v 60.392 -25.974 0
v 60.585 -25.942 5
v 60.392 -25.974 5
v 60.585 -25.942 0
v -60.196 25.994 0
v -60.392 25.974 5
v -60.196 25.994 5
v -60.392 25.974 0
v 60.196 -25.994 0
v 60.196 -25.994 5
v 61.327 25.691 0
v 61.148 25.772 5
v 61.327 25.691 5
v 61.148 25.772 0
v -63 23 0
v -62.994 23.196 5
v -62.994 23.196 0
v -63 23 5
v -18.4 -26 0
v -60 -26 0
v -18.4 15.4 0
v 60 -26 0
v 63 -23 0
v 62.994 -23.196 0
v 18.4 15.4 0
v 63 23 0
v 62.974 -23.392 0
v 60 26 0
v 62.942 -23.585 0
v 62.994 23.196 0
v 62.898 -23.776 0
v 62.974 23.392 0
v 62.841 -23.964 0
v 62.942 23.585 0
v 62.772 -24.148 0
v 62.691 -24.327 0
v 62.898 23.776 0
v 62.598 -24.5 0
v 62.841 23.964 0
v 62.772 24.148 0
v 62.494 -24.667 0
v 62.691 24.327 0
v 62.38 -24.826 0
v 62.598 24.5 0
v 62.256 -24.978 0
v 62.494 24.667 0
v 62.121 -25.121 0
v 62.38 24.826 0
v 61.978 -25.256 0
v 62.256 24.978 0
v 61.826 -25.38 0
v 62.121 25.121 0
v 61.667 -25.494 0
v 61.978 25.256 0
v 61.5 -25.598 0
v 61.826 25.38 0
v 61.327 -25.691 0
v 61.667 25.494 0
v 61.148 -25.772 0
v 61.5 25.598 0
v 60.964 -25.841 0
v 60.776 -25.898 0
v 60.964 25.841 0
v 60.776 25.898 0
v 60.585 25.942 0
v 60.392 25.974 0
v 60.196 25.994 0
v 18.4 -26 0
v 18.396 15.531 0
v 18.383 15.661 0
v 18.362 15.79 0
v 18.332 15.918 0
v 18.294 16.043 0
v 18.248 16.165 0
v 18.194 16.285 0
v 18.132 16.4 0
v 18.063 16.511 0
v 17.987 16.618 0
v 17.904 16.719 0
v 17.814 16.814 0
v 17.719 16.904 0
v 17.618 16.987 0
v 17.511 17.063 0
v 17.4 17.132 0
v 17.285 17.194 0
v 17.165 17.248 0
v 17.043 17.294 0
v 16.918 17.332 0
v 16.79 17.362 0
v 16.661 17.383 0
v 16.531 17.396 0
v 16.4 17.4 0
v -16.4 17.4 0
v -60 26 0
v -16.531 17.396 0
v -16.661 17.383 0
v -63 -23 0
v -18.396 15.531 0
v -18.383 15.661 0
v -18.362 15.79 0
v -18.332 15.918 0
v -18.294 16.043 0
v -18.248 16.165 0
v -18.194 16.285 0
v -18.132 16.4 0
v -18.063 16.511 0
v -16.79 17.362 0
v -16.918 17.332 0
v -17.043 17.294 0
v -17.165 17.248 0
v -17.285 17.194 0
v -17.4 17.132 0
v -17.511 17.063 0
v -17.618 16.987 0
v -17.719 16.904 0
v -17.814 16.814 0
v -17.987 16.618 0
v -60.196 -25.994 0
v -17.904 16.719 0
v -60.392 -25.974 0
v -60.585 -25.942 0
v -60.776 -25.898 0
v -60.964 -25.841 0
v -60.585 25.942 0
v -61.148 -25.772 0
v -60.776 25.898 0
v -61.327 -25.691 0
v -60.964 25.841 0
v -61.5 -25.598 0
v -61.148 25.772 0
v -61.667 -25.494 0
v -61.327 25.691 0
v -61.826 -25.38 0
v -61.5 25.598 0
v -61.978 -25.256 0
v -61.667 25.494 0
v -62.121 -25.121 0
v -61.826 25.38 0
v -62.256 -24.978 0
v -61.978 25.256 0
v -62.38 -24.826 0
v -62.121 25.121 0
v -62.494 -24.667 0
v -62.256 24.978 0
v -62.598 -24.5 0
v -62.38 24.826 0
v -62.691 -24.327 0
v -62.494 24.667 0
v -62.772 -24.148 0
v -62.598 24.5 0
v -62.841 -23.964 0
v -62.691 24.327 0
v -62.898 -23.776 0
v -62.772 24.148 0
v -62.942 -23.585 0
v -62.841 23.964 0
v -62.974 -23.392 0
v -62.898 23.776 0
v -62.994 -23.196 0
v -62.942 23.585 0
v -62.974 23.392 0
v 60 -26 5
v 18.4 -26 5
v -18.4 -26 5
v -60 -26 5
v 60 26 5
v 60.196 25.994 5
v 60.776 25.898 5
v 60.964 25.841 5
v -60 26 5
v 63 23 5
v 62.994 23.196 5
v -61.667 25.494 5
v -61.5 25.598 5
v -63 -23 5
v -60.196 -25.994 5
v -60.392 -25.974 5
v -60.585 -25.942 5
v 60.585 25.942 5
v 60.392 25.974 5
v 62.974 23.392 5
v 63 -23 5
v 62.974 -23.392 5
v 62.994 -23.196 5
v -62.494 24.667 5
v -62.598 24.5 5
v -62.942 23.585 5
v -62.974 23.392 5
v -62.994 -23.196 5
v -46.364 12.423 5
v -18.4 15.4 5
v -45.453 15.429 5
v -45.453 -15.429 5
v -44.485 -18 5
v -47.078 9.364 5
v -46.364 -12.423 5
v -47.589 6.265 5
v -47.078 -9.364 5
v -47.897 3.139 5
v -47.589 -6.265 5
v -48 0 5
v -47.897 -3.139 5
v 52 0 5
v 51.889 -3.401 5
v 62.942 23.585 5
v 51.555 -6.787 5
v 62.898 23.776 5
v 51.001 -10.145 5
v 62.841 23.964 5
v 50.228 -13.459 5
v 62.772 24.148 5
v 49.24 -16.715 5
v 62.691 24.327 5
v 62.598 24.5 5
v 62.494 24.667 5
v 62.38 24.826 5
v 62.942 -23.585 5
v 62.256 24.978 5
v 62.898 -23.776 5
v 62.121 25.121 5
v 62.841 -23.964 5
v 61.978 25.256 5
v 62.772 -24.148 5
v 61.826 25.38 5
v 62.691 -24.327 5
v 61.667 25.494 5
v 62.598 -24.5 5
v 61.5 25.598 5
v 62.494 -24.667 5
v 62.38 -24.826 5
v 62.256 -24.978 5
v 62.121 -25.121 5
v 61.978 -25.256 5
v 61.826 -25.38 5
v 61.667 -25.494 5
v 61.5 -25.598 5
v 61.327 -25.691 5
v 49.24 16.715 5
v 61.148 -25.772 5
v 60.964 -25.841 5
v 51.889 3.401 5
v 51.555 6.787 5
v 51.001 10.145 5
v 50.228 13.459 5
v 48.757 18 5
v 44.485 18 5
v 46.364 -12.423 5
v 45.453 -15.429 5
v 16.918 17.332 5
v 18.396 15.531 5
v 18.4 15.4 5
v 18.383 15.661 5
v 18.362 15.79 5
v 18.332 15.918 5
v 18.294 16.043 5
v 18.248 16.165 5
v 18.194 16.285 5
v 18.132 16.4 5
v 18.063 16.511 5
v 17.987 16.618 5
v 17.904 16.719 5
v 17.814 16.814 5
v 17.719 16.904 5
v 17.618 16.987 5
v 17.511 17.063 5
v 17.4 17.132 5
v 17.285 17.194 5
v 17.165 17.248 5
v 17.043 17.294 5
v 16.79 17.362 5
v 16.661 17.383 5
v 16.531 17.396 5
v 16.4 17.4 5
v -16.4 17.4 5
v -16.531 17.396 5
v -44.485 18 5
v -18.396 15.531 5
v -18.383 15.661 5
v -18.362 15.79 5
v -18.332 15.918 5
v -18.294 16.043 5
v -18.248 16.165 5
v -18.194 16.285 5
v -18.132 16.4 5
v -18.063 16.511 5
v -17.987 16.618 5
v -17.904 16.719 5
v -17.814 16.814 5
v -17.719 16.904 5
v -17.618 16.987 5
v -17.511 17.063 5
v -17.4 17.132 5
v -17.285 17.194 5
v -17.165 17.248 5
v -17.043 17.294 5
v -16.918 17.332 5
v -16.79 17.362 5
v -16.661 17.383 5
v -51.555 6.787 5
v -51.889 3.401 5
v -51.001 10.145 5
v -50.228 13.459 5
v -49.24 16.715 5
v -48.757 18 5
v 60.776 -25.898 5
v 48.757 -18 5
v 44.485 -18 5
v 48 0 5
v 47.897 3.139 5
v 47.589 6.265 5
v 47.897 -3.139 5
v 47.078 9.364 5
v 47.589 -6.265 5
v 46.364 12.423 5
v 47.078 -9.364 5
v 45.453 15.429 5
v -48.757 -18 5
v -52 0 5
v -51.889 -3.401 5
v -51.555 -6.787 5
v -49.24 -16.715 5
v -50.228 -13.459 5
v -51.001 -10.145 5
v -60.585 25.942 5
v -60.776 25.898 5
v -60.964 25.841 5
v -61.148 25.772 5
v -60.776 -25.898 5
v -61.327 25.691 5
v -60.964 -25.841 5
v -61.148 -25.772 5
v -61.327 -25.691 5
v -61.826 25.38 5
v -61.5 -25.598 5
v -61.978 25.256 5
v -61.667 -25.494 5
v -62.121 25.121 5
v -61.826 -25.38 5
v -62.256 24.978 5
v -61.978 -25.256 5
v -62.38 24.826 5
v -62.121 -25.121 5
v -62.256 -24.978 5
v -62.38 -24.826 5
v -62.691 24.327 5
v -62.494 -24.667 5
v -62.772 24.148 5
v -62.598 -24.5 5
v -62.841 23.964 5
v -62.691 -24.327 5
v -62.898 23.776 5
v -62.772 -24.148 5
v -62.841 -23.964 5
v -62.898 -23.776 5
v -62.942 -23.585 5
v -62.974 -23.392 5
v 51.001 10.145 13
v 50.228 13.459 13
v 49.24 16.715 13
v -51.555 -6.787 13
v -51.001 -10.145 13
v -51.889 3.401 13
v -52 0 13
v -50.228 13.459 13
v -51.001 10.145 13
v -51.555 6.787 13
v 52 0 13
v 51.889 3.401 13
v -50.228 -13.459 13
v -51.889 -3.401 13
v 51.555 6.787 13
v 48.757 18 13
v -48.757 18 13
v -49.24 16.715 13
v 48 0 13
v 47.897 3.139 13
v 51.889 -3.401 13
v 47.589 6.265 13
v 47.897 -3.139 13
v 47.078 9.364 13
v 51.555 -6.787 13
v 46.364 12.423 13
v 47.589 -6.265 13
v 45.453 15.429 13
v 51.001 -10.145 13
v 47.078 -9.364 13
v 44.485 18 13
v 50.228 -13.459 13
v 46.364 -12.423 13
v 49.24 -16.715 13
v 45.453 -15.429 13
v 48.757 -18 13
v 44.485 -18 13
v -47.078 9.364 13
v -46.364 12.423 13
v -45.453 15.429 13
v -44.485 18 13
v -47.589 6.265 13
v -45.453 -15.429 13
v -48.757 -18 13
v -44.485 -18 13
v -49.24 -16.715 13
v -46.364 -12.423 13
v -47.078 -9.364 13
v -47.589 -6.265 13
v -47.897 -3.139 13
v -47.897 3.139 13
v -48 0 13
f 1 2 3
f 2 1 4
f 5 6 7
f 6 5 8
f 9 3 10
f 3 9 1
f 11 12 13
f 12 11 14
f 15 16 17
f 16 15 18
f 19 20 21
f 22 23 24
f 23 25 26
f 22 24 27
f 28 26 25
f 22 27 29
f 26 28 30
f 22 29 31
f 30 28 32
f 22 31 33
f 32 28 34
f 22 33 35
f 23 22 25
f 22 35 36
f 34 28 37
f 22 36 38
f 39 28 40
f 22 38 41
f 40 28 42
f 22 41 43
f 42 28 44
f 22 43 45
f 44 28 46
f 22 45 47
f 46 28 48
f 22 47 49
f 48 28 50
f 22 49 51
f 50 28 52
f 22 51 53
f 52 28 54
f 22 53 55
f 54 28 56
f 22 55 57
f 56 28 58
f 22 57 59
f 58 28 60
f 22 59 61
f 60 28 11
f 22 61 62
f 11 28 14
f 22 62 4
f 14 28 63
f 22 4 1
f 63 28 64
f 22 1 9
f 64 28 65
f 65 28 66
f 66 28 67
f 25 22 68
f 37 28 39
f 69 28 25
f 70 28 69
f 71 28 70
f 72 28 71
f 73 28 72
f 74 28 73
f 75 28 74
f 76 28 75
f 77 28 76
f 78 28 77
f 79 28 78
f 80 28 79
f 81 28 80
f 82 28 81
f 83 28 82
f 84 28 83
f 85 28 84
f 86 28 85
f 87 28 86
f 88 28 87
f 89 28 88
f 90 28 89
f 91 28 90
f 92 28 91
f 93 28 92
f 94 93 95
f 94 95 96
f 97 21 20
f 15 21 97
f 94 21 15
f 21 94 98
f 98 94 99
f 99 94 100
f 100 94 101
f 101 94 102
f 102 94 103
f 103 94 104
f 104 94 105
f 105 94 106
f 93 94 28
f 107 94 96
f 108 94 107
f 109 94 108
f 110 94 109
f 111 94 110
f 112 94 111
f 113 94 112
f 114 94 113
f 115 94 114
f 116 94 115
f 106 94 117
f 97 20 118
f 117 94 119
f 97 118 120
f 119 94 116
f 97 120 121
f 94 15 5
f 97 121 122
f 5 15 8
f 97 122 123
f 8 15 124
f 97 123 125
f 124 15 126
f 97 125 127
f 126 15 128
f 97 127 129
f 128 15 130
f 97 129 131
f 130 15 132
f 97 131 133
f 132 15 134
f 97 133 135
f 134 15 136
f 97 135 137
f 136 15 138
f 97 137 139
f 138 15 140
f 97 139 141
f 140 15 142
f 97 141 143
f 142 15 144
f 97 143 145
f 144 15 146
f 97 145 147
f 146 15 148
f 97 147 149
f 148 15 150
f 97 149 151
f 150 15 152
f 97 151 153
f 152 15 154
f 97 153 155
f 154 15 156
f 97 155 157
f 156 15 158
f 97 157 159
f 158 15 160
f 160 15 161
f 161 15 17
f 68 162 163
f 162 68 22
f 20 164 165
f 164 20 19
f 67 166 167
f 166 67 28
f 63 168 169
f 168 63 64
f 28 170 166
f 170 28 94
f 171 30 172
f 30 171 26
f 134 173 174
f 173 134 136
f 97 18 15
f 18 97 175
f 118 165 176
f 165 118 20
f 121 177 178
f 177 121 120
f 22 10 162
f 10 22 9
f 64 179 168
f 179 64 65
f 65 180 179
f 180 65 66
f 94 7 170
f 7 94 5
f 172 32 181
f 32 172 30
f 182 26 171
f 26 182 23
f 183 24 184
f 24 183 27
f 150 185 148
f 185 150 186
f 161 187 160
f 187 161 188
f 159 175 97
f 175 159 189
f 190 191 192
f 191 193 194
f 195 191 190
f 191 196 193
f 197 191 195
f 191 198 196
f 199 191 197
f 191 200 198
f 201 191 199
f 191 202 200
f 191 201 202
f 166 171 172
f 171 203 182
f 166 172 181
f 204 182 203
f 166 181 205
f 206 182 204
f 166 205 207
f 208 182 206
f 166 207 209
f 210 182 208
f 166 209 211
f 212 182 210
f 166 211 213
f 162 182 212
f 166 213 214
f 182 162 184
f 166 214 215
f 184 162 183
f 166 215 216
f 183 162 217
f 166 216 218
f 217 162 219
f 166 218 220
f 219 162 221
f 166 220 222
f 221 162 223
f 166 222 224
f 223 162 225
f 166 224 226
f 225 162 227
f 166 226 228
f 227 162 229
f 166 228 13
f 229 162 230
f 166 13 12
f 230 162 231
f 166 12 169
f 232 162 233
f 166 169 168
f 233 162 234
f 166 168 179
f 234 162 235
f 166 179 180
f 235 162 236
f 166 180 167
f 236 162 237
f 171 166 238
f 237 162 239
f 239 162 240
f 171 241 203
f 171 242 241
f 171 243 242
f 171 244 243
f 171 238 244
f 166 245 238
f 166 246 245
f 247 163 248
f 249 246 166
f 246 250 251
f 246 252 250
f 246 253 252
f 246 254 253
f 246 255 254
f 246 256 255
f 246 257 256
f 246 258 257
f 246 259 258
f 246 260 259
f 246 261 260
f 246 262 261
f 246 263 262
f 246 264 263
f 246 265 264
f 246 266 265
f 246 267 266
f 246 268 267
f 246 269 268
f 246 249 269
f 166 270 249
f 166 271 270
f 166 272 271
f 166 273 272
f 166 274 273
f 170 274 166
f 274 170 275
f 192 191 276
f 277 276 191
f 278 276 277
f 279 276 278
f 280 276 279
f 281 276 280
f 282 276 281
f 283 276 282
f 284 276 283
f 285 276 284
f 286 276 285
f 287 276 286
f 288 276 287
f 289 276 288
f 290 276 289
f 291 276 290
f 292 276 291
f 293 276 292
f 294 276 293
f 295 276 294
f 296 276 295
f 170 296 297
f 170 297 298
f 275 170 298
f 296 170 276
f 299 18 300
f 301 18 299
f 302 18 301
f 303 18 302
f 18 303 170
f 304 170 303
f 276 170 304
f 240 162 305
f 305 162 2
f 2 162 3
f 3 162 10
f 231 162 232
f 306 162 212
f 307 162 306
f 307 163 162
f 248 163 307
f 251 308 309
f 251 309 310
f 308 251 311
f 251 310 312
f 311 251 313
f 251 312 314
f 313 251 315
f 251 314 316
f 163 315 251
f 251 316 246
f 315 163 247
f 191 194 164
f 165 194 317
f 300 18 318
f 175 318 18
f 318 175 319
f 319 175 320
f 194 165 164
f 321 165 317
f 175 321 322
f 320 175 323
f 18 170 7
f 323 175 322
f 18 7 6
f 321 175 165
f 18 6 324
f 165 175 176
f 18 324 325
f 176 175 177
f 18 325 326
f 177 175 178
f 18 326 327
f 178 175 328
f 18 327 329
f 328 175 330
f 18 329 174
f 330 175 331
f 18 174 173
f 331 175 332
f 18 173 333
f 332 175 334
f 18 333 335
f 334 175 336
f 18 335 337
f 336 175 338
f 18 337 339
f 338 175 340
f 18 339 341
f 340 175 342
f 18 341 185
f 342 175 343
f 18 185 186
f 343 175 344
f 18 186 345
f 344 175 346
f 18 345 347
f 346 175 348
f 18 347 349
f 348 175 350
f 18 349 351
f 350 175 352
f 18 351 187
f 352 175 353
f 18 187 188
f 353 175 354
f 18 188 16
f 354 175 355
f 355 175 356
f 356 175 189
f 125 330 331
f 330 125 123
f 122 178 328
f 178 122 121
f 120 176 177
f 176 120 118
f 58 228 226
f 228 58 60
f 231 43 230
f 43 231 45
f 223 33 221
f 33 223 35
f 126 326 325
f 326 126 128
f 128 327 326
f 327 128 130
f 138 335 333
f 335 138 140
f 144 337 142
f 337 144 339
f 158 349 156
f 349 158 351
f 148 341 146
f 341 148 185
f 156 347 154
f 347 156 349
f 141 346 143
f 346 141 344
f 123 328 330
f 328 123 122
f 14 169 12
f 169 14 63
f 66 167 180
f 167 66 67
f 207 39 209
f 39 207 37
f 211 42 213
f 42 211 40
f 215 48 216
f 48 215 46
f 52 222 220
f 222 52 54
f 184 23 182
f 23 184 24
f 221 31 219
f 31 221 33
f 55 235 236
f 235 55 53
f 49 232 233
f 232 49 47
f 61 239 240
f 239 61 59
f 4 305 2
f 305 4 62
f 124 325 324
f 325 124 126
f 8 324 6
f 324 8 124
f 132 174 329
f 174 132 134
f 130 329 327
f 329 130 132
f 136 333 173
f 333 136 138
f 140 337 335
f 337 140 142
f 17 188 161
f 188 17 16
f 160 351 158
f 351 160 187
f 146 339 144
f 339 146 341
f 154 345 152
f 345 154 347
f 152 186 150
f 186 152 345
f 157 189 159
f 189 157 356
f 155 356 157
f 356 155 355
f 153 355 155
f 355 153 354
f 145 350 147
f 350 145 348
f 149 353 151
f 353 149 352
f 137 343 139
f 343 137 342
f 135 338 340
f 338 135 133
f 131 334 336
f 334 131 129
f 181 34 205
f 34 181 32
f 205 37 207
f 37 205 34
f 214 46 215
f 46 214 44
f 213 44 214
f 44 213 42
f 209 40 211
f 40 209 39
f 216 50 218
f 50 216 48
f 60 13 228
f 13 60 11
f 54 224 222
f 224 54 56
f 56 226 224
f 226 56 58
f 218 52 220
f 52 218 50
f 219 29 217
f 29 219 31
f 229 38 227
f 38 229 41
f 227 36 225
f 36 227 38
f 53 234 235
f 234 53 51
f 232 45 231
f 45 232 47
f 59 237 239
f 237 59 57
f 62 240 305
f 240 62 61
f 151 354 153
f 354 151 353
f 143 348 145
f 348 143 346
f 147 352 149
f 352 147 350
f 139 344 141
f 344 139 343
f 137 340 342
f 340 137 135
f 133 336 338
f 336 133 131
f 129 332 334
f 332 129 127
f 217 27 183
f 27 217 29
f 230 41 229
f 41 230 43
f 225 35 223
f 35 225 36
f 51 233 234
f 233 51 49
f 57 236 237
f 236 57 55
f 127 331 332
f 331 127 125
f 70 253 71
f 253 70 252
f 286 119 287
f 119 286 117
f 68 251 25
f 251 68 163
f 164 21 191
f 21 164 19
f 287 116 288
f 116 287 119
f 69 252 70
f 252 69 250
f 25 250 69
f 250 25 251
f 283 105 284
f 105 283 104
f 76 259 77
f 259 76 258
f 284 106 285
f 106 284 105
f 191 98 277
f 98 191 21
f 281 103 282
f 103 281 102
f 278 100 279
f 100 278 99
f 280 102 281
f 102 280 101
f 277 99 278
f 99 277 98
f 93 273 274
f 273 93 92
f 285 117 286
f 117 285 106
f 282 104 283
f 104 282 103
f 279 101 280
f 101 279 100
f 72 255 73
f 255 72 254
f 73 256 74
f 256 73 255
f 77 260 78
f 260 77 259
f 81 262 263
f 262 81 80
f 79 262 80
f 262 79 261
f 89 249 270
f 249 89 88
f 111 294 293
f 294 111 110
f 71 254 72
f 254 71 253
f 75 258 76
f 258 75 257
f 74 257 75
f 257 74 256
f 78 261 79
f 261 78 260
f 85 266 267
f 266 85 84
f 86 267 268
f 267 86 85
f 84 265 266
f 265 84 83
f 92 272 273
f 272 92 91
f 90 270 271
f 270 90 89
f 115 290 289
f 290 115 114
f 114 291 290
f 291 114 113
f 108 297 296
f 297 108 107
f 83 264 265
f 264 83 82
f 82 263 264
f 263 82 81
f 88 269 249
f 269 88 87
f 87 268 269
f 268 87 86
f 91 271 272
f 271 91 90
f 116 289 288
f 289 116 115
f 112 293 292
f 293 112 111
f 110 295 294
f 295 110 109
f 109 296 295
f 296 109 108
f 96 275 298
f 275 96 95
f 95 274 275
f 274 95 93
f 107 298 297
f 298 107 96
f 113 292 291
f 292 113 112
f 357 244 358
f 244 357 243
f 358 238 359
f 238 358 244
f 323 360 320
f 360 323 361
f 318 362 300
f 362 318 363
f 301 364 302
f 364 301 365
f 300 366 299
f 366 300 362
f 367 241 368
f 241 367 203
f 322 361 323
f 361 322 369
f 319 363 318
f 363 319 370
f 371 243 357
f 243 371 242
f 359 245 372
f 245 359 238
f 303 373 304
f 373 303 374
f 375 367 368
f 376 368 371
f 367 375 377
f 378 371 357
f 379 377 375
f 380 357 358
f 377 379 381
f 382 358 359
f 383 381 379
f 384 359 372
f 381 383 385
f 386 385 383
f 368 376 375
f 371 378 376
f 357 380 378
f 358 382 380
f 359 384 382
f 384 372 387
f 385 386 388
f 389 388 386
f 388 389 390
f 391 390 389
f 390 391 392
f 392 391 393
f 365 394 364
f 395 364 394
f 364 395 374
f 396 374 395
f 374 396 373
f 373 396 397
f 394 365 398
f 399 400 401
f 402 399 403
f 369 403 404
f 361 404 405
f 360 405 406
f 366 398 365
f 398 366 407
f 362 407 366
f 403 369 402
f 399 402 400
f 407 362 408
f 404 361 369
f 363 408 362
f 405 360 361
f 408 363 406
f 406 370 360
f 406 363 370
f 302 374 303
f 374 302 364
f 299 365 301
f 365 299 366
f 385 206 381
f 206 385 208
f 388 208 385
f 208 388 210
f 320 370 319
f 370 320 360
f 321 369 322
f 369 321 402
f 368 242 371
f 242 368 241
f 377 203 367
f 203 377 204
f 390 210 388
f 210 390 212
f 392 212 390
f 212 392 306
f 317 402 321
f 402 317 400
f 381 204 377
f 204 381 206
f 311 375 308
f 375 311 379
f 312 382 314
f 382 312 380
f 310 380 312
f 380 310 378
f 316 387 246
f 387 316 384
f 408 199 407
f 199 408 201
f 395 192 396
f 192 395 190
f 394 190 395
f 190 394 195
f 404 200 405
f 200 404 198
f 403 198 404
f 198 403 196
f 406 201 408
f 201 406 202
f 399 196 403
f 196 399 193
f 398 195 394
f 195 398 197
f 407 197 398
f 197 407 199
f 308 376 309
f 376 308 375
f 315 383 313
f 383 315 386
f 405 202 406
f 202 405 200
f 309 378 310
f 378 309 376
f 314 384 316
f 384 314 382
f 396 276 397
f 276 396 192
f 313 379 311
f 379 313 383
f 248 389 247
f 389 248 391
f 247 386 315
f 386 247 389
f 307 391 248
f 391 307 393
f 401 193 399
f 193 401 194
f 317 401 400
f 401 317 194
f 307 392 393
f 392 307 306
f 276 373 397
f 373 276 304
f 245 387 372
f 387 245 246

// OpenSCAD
// OBSOLETE FOR THE CURRENT 10 mm EXPOSED-TIP HEAD. Do not print for that head.
// Use ../../2026-11-20/cup90-stand-10mm/cup90_stand_10mm_v2.scad instead.
// One printed part for the existing 44 x 34 mm test head and an approximately
// 90 mm outside-diameter cup. Units are millimetres.
// Default geometry is already oriented for printing, broad flat face on bed.
// The cradle opens at one side so the assembled probes can enter sideways.
$fn = 96;
part = "print"; // [print,assembly,installed,interference]

cup_outer_diameter = 90;
cup_diameter_allowance = 6; // Total diameter allowance, 3 mm radial at nominal size.
plate_length = 126;
plate_width = 52;
plate_thickness = 5;
slot_width = 36.8;
slot_rear_y = 17.4;
guide_wall = 4;
guide_drop = 8;
guide_half_width = 18;

head_width = 44;
head_depth = 34;
head_height = 18;
head_rod_projection = 55; // Existing-head record. Verify assembled hardware.
temperature_projection = 40; // Assembly illustration only, not a measured length.
preview_cup_height = 90;
preview_water_below_rim = 25; // Example fill level, set the actual level by measurement.

guide_inner_diameter = cup_outer_diameter + cup_diameter_allowance;
guide_outer_diameter = guide_inner_diameter + 2 * guide_wall;

module rounded_plate(w, d, h, radius = 3) {
    linear_extrude(height = h)
        offset(r = radius) square([w - 2 * radius, d - 2 * radius], center = true);
}

module side_entry() {
    radius = 2;
    linear_extrude(height = plate_thickness + 0.2)
        hull() {
            for (x = [-slot_width / 2 + radius, slot_width / 2 - radius]) {
                translate([x, -plate_width / 2 - radius - 1]) circle(r = radius);
                translate([x, slot_rear_y - radius]) circle(r = radius);
            }
        }
}

module rim_guides() {
    // Two short outside guides leave the spout and handle directions open.
    // Guides and plate overlap, so the exported mesh is a single connected part.
    intersection() {
        difference() {
            cylinder(d = guide_outer_diameter, h = guide_drop + 0.05);
            translate([0, 0, -0.1])
                cylinder(d = guide_inner_diameter, h = guide_drop + 0.25);
        }
        translate([-guide_outer_diameter, -guide_half_width, -0.1])
            cube([2 * guide_outer_diameter, 2 * guide_half_width, guide_drop + 0.25]);
    }
}

module printable_stand() {
    union() {
        difference() {
            rounded_plate(plate_length, plate_width, plate_thickness);
            translate([0, 0, -0.1]) side_entry();
        }
        translate([0, 0, plate_thickness - 0.05]) rim_guides();
    }
}

module installed_stand() {
    // Turn the print over. Plate bottom is at the cup rim, z = 0.
    translate([0, 0, plate_thickness]) rotate([180, 0, 0]) printable_stand();
}

module reference_head() {
    // Existing head envelope and actual probe XY positions.
    // Side clamp hardware is shown schematically for orientation.
    difference() {
        rounded_plate(head_width, head_depth, head_height, 2);
        for (x = [-10, 10])
            translate([x, -6, -0.1]) cylinder(d = 5.5, h = head_height + 0.2);
        translate([0, 8, -0.1]) cylinder(d = 6.5, h = head_height + 0.2);
    }
}

module reference_probes() {
    for (x = [-10, 10])
        color([0.62, 0.64, 0.67])
            translate([x, -6, plate_thickness - head_rod_projection])
                cylinder(d = 5, h = head_rod_projection + head_height + 12);
    color([0.48, 0.51, 0.54])
        translate([0, 8, plate_thickness - temperature_projection]) cylinder(d = 6, h = 50);
    color([0.12, 0.12, 0.13])
        translate([0, 8, plate_thickness - temperature_projection + 50]) cylinder(d = 3, h = 22);
}

module reference_cup() {
    // A generic tapered cup, not an exact model of a Daiso product.
    color([0.75, 0.80, 0.85, 0.23])
        difference() {
            translate([0, 0, -preview_cup_height])
                cylinder(d1 = 66, d2 = cup_outer_diameter, h = preview_cup_height);
            translate([0, 0, -preview_cup_height + 3])
                cylinder(d1 = 62, d2 = cup_outer_diameter - 4, h = preview_cup_height - 2.9);
        }
    color([0.23, 0.60, 0.90, 0.18])
        translate([0, 0, -preview_cup_height + 3])
            cylinder(d1 = 61.8,
                     d2 = 62 + (cup_outer_diameter - 4 - 62) *
                          (preview_cup_height - 3 - preview_water_below_rim) / (preview_cup_height - 3),
                     h = preview_cup_height - 3 - preview_water_below_rim);
}

module reference_tape() {
    // Two dry tape strips hold the plastic head to the two side shelves.
    for (side = [-1, 1]) {
        x = side * (head_width / 2 - 1);
        color([0.93, 0.67, 0.25, 0.85]) {
            translate([x - 4, -4, plate_thickness + head_height]) cube([8, 8, 0.3]);
            translate([side < 0 ? -head_width / 2 - 0.3 : head_width / 2, -4, plate_thickness])
                cube([0.3, 8, head_height + 0.3]);
            translate([side < 0 ? -35 : head_width / 2, -4, plate_thickness])
                cube([35 - head_width / 2, 8, 0.3]);
        }
    }
}

module assembly() {
    color([0.17, 0.43, 0.72]) installed_stand();
    color([0.91, 0.91, 0.88]) translate([0, 0, plate_thickness]) reference_head();
    reference_probes();
    reference_tape();
    reference_cup();
}

assert(head_width > slot_width + 6, "Leave at least 3 mm head bearing on each side.");
assert(slot_rear_y > head_depth / 2, "The head must clear the rear edge of the opening.");
assert(plate_width / 2 - slot_rear_y >= 8, "Keep the rear bridge at least 8 mm wide.");
assert(guide_outer_diameter < plate_length - 10, "Rim guides must stay inside the plate footprint.");
assert(2 * guide_half_width < plate_width - 10);
assert(guide_inner_diameter > cup_outer_diameter);

if (part == "assembly") assembly();
else if (part == "installed") installed_stand();
else if (part == "interference") {
    intersection() {
        installed_stand();
        translate([0, 0, plate_thickness + 0.01]) reference_head();
    }
    intersection() {
        installed_stand();
        for (p = [[-10, -6], [10, -6], [0, 8]])
            translate([p[0], p[1], -5]) cylinder(d = 8, h = 36);
    }
}
else printable_stand();
